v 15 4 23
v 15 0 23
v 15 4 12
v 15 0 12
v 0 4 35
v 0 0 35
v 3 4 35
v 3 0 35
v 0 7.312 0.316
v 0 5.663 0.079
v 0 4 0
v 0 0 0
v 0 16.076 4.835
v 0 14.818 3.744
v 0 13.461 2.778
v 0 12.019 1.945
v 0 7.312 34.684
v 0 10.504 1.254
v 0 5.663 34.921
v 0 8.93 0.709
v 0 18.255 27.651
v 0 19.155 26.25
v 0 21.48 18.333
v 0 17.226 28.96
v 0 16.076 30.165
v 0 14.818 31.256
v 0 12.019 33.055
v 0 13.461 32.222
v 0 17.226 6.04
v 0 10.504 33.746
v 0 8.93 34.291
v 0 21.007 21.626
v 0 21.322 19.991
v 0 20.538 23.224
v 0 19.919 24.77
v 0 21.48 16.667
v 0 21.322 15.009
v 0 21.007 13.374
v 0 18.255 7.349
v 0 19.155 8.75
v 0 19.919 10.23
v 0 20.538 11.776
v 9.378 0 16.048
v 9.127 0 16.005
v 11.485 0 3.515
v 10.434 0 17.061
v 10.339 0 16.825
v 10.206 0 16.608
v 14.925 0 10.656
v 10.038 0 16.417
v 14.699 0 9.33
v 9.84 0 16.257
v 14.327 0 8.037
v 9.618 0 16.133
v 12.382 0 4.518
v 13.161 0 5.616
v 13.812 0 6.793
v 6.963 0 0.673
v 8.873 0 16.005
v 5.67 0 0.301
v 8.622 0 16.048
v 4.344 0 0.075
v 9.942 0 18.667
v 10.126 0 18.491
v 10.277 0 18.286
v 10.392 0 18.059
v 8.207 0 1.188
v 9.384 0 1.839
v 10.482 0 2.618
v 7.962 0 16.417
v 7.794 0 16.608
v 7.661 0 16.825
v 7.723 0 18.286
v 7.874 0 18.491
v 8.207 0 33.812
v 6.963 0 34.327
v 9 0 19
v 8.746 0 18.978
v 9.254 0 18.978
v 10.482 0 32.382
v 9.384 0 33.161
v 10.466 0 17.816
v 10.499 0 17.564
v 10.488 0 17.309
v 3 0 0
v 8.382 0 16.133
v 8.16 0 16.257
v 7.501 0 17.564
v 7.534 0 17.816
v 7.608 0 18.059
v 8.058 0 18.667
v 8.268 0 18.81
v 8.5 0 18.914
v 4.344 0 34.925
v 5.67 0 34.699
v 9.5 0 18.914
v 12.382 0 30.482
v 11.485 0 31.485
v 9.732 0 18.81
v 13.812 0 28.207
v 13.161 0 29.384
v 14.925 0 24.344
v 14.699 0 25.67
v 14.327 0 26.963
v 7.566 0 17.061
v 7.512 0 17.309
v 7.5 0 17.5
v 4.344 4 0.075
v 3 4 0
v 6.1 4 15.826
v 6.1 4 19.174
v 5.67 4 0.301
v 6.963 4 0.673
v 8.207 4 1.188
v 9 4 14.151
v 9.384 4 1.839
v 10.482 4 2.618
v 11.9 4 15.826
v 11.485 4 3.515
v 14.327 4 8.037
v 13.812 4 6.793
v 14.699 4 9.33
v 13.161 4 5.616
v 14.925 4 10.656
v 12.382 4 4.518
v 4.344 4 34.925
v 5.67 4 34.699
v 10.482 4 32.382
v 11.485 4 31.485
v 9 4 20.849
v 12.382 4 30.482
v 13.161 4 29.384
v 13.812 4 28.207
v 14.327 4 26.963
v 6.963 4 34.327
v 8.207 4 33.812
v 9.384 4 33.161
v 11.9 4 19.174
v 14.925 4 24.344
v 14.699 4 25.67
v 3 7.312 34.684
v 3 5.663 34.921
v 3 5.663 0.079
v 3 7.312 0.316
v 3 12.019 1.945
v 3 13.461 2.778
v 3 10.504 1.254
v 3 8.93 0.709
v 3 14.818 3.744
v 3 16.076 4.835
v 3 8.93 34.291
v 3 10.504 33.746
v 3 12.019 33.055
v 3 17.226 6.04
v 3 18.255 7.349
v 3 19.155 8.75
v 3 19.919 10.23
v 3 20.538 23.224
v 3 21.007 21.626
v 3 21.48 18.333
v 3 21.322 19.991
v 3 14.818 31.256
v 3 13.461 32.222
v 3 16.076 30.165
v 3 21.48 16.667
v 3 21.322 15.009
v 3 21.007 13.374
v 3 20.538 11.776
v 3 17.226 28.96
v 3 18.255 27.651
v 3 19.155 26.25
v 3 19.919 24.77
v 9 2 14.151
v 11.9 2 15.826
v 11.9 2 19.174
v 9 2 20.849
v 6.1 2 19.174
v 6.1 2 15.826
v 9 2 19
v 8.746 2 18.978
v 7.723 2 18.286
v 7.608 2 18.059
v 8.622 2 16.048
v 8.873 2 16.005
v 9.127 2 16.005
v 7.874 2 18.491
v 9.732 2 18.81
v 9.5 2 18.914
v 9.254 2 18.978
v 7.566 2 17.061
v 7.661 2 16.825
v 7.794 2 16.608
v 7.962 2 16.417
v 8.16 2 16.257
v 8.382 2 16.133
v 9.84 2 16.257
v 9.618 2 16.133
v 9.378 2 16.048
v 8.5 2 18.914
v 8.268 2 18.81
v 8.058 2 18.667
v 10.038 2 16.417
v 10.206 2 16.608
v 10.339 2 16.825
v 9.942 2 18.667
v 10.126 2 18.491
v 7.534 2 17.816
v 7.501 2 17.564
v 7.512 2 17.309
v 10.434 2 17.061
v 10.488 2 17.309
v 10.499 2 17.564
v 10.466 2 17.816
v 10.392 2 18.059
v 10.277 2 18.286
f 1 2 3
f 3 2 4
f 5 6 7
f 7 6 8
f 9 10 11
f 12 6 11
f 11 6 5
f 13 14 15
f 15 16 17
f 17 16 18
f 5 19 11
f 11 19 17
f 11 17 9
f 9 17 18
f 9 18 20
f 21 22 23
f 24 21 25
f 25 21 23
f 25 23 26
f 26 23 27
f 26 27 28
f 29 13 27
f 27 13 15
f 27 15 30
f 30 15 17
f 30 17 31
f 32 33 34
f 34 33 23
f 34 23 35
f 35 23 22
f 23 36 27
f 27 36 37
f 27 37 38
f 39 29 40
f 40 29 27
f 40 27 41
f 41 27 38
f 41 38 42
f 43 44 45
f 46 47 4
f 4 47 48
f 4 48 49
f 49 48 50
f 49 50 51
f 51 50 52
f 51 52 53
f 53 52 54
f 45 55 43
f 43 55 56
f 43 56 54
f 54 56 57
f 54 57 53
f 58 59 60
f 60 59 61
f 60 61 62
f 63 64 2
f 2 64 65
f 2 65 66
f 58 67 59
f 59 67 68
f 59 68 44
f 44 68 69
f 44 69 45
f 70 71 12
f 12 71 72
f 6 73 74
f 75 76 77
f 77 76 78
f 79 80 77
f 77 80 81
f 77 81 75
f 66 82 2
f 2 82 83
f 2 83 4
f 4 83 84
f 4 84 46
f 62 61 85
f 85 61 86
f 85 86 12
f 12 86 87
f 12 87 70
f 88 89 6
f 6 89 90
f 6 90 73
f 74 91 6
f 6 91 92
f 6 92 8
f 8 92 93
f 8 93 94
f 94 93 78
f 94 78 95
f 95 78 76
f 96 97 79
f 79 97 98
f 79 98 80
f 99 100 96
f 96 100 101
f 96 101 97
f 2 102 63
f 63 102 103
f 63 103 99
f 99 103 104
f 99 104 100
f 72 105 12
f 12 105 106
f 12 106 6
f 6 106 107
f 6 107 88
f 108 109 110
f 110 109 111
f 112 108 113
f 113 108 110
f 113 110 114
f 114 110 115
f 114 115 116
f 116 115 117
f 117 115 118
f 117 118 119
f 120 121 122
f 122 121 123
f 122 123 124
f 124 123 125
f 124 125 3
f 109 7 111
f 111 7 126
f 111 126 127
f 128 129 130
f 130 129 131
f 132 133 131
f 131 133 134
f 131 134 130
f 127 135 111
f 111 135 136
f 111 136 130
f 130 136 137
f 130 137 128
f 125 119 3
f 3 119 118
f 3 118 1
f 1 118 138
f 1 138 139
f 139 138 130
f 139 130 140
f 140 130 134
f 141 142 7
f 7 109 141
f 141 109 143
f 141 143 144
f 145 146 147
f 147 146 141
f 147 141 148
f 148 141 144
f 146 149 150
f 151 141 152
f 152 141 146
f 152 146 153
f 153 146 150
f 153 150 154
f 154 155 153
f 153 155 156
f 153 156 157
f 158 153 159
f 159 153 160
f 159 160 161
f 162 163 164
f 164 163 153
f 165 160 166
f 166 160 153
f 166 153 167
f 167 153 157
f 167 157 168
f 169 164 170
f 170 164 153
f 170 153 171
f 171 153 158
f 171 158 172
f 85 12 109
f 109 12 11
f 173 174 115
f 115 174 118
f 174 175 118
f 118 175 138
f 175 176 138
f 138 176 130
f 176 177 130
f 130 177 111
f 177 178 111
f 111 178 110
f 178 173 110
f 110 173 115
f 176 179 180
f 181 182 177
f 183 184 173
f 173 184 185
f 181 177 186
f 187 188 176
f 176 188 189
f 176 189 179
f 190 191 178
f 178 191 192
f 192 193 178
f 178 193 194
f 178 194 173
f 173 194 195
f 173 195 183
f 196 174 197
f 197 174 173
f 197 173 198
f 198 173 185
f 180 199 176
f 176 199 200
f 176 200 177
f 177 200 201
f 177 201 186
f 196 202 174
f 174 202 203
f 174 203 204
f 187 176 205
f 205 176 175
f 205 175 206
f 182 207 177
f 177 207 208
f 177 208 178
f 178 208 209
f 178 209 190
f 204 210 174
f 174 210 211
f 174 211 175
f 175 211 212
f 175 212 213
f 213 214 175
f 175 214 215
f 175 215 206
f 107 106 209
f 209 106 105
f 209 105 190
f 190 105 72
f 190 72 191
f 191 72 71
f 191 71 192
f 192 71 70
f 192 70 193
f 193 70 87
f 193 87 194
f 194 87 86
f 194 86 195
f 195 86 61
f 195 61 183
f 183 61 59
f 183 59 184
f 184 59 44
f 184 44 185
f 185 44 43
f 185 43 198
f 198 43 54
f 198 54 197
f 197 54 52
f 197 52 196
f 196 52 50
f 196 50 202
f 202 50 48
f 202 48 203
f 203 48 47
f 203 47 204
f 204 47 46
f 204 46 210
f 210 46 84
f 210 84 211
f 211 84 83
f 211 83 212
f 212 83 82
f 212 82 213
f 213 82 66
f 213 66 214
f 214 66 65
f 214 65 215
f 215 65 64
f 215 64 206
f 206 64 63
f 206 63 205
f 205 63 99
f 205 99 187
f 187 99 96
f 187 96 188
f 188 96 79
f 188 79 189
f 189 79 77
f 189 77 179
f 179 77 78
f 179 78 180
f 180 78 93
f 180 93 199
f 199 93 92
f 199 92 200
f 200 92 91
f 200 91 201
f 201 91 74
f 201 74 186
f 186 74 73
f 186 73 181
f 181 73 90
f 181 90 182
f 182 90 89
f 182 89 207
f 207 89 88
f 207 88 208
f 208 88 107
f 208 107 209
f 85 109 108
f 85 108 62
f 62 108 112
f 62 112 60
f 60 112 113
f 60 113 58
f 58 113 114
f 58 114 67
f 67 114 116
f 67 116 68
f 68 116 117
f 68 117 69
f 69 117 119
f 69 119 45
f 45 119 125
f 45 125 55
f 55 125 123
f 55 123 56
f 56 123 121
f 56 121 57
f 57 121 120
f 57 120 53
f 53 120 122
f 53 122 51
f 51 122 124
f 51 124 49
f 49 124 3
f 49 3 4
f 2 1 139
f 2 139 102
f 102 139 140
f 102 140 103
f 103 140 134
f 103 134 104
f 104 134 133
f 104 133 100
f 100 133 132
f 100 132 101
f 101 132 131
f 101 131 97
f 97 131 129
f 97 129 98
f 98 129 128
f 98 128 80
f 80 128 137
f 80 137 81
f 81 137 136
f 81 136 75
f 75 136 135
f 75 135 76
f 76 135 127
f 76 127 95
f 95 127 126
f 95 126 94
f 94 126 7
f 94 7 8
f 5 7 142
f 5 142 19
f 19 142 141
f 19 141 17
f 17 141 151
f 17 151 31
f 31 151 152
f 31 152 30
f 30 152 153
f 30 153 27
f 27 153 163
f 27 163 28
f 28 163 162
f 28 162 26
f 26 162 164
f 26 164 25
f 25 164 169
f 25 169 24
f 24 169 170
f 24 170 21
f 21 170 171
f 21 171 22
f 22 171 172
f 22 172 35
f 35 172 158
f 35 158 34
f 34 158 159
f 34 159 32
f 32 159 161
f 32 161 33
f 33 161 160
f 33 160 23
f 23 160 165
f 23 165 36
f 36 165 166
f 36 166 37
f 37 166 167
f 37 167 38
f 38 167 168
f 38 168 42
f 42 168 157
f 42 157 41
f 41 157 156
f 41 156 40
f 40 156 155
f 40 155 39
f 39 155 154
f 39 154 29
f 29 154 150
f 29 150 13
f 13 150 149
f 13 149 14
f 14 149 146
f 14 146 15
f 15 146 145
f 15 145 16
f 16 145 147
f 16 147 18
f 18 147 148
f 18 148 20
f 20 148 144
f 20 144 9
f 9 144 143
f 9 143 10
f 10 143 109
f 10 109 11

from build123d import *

# Parameters (mm, degrees)
SALIENTE_EXTRUIR1_DEPTH = 35
CORTAR_EXTRUIR1_DEPTH   = 2
CROQUIS4_R              = 1.5
CORTAR_EXTRUIR2_DEPTH   = 10
CORTAR_EXTRUIR3_DEPTH   = 10
CORTAR_EXTRUIR4_DEPTH   = 10


with BuildPart() as part:
    # Croquis2 → Saliente-Extruir1 (new body)
    with BuildSketch(Plane.XY):
        Polygon((0, 23), (3, 23), (3, 4), (15, 4), (15, 0), (0, 0), align=None)
    extrude(amount=SALIENTE_EXTRUIR1_DEPTH)

    # Croquis3 → Cortar-Extruir1 (cut)
    with BuildSketch(Plane(origin=(0, 4, 0), x_dir=(1, 0, 0), z_dir=(0, 1, 0))):
        Polygon((9, -14.151368439), (6.1, -15.825684219), (6.1, -19.174315781), (9, -20.848631561), (11.9, -19.174315781), (11.9, -15.825684219), align=None)
    extrude(amount=-CORTAR_EXTRUIR1_DEPTH, mode=Mode.SUBTRACT)

    # Croquis4 → Cortar-Extruir2 (cut)
    with BuildSketch(Plane(origin=(0, 2, 0), x_dir=(1, 0, 0), z_dir=(0, 1, 0))):
        with Locations(Location((9, -17.5, 0), (0, 0, 270))):
            Circle(CROQUIS4_R)
    extrude(amount=-CORTAR_EXTRUIR2_DEPTH, mode=Mode.SUBTRACT)

    # Croquis5 → Cortar-Extruir3 (cut)
    with BuildSketch(Plane(origin=(0, 4, 0), x_dir=(1, 0, 0), z_dir=(0, 1, 0))):
        with BuildLine():
            Line((15, -12), (15, -23))
            ThreePointArc((15, -23), (11.485281374, -31.485281374), (3, -35))
            Line((3, -35), (3, -39.861701289))
            Line((3, -39.861701289), (21.688312252, -36.848700447))
            Line((21.688312252, -36.848700447), (27.206798155, -6.851825545))
            Line((27.206798155, -6.851825545), (15.87267332, 7.755192399))
            Line((15.87267332, 7.755192399), (3, 0))
            ThreePointArc((3, 0), (11.485281374, -3.514718626), (15, -12))
        make_face()
    extrude(amount=-CORTAR_EXTRUIR3_DEPTH, mode=Mode.SUBTRACT)

    # Croquis6 → Cortar-Extruir4 (cut)
    with BuildSketch(Plane(origin=(3, 0, 0), x_dir=(0, 0, -1), z_dir=(1, 0, 0))):
        with BuildLine():
            Line((-35, 4), (-43.463242579, 10.305944429))
            Line((-43.463242579, 10.305944429), (-37.648578304, 30.185339472))
            Line((-37.648578304, 30.185339472), (-37.331119495, 31.270679702))
            Line((-37.331119495, 31.270679702), (8.796856155, 26.447825939))
            Line((8.796856155, 26.447825939), (6.381141064, 12.03440645))
            Line((6.381141064, 12.03440645), (0, 4))
            ThreePointArc((0, 4), (-17.5, 21.5), (-35, 4))
        make_face()
    extrude(amount=-CORTAR_EXTRUIR4_DEPTH, mode=Mode.SUBTRACT)


solid = part.part
